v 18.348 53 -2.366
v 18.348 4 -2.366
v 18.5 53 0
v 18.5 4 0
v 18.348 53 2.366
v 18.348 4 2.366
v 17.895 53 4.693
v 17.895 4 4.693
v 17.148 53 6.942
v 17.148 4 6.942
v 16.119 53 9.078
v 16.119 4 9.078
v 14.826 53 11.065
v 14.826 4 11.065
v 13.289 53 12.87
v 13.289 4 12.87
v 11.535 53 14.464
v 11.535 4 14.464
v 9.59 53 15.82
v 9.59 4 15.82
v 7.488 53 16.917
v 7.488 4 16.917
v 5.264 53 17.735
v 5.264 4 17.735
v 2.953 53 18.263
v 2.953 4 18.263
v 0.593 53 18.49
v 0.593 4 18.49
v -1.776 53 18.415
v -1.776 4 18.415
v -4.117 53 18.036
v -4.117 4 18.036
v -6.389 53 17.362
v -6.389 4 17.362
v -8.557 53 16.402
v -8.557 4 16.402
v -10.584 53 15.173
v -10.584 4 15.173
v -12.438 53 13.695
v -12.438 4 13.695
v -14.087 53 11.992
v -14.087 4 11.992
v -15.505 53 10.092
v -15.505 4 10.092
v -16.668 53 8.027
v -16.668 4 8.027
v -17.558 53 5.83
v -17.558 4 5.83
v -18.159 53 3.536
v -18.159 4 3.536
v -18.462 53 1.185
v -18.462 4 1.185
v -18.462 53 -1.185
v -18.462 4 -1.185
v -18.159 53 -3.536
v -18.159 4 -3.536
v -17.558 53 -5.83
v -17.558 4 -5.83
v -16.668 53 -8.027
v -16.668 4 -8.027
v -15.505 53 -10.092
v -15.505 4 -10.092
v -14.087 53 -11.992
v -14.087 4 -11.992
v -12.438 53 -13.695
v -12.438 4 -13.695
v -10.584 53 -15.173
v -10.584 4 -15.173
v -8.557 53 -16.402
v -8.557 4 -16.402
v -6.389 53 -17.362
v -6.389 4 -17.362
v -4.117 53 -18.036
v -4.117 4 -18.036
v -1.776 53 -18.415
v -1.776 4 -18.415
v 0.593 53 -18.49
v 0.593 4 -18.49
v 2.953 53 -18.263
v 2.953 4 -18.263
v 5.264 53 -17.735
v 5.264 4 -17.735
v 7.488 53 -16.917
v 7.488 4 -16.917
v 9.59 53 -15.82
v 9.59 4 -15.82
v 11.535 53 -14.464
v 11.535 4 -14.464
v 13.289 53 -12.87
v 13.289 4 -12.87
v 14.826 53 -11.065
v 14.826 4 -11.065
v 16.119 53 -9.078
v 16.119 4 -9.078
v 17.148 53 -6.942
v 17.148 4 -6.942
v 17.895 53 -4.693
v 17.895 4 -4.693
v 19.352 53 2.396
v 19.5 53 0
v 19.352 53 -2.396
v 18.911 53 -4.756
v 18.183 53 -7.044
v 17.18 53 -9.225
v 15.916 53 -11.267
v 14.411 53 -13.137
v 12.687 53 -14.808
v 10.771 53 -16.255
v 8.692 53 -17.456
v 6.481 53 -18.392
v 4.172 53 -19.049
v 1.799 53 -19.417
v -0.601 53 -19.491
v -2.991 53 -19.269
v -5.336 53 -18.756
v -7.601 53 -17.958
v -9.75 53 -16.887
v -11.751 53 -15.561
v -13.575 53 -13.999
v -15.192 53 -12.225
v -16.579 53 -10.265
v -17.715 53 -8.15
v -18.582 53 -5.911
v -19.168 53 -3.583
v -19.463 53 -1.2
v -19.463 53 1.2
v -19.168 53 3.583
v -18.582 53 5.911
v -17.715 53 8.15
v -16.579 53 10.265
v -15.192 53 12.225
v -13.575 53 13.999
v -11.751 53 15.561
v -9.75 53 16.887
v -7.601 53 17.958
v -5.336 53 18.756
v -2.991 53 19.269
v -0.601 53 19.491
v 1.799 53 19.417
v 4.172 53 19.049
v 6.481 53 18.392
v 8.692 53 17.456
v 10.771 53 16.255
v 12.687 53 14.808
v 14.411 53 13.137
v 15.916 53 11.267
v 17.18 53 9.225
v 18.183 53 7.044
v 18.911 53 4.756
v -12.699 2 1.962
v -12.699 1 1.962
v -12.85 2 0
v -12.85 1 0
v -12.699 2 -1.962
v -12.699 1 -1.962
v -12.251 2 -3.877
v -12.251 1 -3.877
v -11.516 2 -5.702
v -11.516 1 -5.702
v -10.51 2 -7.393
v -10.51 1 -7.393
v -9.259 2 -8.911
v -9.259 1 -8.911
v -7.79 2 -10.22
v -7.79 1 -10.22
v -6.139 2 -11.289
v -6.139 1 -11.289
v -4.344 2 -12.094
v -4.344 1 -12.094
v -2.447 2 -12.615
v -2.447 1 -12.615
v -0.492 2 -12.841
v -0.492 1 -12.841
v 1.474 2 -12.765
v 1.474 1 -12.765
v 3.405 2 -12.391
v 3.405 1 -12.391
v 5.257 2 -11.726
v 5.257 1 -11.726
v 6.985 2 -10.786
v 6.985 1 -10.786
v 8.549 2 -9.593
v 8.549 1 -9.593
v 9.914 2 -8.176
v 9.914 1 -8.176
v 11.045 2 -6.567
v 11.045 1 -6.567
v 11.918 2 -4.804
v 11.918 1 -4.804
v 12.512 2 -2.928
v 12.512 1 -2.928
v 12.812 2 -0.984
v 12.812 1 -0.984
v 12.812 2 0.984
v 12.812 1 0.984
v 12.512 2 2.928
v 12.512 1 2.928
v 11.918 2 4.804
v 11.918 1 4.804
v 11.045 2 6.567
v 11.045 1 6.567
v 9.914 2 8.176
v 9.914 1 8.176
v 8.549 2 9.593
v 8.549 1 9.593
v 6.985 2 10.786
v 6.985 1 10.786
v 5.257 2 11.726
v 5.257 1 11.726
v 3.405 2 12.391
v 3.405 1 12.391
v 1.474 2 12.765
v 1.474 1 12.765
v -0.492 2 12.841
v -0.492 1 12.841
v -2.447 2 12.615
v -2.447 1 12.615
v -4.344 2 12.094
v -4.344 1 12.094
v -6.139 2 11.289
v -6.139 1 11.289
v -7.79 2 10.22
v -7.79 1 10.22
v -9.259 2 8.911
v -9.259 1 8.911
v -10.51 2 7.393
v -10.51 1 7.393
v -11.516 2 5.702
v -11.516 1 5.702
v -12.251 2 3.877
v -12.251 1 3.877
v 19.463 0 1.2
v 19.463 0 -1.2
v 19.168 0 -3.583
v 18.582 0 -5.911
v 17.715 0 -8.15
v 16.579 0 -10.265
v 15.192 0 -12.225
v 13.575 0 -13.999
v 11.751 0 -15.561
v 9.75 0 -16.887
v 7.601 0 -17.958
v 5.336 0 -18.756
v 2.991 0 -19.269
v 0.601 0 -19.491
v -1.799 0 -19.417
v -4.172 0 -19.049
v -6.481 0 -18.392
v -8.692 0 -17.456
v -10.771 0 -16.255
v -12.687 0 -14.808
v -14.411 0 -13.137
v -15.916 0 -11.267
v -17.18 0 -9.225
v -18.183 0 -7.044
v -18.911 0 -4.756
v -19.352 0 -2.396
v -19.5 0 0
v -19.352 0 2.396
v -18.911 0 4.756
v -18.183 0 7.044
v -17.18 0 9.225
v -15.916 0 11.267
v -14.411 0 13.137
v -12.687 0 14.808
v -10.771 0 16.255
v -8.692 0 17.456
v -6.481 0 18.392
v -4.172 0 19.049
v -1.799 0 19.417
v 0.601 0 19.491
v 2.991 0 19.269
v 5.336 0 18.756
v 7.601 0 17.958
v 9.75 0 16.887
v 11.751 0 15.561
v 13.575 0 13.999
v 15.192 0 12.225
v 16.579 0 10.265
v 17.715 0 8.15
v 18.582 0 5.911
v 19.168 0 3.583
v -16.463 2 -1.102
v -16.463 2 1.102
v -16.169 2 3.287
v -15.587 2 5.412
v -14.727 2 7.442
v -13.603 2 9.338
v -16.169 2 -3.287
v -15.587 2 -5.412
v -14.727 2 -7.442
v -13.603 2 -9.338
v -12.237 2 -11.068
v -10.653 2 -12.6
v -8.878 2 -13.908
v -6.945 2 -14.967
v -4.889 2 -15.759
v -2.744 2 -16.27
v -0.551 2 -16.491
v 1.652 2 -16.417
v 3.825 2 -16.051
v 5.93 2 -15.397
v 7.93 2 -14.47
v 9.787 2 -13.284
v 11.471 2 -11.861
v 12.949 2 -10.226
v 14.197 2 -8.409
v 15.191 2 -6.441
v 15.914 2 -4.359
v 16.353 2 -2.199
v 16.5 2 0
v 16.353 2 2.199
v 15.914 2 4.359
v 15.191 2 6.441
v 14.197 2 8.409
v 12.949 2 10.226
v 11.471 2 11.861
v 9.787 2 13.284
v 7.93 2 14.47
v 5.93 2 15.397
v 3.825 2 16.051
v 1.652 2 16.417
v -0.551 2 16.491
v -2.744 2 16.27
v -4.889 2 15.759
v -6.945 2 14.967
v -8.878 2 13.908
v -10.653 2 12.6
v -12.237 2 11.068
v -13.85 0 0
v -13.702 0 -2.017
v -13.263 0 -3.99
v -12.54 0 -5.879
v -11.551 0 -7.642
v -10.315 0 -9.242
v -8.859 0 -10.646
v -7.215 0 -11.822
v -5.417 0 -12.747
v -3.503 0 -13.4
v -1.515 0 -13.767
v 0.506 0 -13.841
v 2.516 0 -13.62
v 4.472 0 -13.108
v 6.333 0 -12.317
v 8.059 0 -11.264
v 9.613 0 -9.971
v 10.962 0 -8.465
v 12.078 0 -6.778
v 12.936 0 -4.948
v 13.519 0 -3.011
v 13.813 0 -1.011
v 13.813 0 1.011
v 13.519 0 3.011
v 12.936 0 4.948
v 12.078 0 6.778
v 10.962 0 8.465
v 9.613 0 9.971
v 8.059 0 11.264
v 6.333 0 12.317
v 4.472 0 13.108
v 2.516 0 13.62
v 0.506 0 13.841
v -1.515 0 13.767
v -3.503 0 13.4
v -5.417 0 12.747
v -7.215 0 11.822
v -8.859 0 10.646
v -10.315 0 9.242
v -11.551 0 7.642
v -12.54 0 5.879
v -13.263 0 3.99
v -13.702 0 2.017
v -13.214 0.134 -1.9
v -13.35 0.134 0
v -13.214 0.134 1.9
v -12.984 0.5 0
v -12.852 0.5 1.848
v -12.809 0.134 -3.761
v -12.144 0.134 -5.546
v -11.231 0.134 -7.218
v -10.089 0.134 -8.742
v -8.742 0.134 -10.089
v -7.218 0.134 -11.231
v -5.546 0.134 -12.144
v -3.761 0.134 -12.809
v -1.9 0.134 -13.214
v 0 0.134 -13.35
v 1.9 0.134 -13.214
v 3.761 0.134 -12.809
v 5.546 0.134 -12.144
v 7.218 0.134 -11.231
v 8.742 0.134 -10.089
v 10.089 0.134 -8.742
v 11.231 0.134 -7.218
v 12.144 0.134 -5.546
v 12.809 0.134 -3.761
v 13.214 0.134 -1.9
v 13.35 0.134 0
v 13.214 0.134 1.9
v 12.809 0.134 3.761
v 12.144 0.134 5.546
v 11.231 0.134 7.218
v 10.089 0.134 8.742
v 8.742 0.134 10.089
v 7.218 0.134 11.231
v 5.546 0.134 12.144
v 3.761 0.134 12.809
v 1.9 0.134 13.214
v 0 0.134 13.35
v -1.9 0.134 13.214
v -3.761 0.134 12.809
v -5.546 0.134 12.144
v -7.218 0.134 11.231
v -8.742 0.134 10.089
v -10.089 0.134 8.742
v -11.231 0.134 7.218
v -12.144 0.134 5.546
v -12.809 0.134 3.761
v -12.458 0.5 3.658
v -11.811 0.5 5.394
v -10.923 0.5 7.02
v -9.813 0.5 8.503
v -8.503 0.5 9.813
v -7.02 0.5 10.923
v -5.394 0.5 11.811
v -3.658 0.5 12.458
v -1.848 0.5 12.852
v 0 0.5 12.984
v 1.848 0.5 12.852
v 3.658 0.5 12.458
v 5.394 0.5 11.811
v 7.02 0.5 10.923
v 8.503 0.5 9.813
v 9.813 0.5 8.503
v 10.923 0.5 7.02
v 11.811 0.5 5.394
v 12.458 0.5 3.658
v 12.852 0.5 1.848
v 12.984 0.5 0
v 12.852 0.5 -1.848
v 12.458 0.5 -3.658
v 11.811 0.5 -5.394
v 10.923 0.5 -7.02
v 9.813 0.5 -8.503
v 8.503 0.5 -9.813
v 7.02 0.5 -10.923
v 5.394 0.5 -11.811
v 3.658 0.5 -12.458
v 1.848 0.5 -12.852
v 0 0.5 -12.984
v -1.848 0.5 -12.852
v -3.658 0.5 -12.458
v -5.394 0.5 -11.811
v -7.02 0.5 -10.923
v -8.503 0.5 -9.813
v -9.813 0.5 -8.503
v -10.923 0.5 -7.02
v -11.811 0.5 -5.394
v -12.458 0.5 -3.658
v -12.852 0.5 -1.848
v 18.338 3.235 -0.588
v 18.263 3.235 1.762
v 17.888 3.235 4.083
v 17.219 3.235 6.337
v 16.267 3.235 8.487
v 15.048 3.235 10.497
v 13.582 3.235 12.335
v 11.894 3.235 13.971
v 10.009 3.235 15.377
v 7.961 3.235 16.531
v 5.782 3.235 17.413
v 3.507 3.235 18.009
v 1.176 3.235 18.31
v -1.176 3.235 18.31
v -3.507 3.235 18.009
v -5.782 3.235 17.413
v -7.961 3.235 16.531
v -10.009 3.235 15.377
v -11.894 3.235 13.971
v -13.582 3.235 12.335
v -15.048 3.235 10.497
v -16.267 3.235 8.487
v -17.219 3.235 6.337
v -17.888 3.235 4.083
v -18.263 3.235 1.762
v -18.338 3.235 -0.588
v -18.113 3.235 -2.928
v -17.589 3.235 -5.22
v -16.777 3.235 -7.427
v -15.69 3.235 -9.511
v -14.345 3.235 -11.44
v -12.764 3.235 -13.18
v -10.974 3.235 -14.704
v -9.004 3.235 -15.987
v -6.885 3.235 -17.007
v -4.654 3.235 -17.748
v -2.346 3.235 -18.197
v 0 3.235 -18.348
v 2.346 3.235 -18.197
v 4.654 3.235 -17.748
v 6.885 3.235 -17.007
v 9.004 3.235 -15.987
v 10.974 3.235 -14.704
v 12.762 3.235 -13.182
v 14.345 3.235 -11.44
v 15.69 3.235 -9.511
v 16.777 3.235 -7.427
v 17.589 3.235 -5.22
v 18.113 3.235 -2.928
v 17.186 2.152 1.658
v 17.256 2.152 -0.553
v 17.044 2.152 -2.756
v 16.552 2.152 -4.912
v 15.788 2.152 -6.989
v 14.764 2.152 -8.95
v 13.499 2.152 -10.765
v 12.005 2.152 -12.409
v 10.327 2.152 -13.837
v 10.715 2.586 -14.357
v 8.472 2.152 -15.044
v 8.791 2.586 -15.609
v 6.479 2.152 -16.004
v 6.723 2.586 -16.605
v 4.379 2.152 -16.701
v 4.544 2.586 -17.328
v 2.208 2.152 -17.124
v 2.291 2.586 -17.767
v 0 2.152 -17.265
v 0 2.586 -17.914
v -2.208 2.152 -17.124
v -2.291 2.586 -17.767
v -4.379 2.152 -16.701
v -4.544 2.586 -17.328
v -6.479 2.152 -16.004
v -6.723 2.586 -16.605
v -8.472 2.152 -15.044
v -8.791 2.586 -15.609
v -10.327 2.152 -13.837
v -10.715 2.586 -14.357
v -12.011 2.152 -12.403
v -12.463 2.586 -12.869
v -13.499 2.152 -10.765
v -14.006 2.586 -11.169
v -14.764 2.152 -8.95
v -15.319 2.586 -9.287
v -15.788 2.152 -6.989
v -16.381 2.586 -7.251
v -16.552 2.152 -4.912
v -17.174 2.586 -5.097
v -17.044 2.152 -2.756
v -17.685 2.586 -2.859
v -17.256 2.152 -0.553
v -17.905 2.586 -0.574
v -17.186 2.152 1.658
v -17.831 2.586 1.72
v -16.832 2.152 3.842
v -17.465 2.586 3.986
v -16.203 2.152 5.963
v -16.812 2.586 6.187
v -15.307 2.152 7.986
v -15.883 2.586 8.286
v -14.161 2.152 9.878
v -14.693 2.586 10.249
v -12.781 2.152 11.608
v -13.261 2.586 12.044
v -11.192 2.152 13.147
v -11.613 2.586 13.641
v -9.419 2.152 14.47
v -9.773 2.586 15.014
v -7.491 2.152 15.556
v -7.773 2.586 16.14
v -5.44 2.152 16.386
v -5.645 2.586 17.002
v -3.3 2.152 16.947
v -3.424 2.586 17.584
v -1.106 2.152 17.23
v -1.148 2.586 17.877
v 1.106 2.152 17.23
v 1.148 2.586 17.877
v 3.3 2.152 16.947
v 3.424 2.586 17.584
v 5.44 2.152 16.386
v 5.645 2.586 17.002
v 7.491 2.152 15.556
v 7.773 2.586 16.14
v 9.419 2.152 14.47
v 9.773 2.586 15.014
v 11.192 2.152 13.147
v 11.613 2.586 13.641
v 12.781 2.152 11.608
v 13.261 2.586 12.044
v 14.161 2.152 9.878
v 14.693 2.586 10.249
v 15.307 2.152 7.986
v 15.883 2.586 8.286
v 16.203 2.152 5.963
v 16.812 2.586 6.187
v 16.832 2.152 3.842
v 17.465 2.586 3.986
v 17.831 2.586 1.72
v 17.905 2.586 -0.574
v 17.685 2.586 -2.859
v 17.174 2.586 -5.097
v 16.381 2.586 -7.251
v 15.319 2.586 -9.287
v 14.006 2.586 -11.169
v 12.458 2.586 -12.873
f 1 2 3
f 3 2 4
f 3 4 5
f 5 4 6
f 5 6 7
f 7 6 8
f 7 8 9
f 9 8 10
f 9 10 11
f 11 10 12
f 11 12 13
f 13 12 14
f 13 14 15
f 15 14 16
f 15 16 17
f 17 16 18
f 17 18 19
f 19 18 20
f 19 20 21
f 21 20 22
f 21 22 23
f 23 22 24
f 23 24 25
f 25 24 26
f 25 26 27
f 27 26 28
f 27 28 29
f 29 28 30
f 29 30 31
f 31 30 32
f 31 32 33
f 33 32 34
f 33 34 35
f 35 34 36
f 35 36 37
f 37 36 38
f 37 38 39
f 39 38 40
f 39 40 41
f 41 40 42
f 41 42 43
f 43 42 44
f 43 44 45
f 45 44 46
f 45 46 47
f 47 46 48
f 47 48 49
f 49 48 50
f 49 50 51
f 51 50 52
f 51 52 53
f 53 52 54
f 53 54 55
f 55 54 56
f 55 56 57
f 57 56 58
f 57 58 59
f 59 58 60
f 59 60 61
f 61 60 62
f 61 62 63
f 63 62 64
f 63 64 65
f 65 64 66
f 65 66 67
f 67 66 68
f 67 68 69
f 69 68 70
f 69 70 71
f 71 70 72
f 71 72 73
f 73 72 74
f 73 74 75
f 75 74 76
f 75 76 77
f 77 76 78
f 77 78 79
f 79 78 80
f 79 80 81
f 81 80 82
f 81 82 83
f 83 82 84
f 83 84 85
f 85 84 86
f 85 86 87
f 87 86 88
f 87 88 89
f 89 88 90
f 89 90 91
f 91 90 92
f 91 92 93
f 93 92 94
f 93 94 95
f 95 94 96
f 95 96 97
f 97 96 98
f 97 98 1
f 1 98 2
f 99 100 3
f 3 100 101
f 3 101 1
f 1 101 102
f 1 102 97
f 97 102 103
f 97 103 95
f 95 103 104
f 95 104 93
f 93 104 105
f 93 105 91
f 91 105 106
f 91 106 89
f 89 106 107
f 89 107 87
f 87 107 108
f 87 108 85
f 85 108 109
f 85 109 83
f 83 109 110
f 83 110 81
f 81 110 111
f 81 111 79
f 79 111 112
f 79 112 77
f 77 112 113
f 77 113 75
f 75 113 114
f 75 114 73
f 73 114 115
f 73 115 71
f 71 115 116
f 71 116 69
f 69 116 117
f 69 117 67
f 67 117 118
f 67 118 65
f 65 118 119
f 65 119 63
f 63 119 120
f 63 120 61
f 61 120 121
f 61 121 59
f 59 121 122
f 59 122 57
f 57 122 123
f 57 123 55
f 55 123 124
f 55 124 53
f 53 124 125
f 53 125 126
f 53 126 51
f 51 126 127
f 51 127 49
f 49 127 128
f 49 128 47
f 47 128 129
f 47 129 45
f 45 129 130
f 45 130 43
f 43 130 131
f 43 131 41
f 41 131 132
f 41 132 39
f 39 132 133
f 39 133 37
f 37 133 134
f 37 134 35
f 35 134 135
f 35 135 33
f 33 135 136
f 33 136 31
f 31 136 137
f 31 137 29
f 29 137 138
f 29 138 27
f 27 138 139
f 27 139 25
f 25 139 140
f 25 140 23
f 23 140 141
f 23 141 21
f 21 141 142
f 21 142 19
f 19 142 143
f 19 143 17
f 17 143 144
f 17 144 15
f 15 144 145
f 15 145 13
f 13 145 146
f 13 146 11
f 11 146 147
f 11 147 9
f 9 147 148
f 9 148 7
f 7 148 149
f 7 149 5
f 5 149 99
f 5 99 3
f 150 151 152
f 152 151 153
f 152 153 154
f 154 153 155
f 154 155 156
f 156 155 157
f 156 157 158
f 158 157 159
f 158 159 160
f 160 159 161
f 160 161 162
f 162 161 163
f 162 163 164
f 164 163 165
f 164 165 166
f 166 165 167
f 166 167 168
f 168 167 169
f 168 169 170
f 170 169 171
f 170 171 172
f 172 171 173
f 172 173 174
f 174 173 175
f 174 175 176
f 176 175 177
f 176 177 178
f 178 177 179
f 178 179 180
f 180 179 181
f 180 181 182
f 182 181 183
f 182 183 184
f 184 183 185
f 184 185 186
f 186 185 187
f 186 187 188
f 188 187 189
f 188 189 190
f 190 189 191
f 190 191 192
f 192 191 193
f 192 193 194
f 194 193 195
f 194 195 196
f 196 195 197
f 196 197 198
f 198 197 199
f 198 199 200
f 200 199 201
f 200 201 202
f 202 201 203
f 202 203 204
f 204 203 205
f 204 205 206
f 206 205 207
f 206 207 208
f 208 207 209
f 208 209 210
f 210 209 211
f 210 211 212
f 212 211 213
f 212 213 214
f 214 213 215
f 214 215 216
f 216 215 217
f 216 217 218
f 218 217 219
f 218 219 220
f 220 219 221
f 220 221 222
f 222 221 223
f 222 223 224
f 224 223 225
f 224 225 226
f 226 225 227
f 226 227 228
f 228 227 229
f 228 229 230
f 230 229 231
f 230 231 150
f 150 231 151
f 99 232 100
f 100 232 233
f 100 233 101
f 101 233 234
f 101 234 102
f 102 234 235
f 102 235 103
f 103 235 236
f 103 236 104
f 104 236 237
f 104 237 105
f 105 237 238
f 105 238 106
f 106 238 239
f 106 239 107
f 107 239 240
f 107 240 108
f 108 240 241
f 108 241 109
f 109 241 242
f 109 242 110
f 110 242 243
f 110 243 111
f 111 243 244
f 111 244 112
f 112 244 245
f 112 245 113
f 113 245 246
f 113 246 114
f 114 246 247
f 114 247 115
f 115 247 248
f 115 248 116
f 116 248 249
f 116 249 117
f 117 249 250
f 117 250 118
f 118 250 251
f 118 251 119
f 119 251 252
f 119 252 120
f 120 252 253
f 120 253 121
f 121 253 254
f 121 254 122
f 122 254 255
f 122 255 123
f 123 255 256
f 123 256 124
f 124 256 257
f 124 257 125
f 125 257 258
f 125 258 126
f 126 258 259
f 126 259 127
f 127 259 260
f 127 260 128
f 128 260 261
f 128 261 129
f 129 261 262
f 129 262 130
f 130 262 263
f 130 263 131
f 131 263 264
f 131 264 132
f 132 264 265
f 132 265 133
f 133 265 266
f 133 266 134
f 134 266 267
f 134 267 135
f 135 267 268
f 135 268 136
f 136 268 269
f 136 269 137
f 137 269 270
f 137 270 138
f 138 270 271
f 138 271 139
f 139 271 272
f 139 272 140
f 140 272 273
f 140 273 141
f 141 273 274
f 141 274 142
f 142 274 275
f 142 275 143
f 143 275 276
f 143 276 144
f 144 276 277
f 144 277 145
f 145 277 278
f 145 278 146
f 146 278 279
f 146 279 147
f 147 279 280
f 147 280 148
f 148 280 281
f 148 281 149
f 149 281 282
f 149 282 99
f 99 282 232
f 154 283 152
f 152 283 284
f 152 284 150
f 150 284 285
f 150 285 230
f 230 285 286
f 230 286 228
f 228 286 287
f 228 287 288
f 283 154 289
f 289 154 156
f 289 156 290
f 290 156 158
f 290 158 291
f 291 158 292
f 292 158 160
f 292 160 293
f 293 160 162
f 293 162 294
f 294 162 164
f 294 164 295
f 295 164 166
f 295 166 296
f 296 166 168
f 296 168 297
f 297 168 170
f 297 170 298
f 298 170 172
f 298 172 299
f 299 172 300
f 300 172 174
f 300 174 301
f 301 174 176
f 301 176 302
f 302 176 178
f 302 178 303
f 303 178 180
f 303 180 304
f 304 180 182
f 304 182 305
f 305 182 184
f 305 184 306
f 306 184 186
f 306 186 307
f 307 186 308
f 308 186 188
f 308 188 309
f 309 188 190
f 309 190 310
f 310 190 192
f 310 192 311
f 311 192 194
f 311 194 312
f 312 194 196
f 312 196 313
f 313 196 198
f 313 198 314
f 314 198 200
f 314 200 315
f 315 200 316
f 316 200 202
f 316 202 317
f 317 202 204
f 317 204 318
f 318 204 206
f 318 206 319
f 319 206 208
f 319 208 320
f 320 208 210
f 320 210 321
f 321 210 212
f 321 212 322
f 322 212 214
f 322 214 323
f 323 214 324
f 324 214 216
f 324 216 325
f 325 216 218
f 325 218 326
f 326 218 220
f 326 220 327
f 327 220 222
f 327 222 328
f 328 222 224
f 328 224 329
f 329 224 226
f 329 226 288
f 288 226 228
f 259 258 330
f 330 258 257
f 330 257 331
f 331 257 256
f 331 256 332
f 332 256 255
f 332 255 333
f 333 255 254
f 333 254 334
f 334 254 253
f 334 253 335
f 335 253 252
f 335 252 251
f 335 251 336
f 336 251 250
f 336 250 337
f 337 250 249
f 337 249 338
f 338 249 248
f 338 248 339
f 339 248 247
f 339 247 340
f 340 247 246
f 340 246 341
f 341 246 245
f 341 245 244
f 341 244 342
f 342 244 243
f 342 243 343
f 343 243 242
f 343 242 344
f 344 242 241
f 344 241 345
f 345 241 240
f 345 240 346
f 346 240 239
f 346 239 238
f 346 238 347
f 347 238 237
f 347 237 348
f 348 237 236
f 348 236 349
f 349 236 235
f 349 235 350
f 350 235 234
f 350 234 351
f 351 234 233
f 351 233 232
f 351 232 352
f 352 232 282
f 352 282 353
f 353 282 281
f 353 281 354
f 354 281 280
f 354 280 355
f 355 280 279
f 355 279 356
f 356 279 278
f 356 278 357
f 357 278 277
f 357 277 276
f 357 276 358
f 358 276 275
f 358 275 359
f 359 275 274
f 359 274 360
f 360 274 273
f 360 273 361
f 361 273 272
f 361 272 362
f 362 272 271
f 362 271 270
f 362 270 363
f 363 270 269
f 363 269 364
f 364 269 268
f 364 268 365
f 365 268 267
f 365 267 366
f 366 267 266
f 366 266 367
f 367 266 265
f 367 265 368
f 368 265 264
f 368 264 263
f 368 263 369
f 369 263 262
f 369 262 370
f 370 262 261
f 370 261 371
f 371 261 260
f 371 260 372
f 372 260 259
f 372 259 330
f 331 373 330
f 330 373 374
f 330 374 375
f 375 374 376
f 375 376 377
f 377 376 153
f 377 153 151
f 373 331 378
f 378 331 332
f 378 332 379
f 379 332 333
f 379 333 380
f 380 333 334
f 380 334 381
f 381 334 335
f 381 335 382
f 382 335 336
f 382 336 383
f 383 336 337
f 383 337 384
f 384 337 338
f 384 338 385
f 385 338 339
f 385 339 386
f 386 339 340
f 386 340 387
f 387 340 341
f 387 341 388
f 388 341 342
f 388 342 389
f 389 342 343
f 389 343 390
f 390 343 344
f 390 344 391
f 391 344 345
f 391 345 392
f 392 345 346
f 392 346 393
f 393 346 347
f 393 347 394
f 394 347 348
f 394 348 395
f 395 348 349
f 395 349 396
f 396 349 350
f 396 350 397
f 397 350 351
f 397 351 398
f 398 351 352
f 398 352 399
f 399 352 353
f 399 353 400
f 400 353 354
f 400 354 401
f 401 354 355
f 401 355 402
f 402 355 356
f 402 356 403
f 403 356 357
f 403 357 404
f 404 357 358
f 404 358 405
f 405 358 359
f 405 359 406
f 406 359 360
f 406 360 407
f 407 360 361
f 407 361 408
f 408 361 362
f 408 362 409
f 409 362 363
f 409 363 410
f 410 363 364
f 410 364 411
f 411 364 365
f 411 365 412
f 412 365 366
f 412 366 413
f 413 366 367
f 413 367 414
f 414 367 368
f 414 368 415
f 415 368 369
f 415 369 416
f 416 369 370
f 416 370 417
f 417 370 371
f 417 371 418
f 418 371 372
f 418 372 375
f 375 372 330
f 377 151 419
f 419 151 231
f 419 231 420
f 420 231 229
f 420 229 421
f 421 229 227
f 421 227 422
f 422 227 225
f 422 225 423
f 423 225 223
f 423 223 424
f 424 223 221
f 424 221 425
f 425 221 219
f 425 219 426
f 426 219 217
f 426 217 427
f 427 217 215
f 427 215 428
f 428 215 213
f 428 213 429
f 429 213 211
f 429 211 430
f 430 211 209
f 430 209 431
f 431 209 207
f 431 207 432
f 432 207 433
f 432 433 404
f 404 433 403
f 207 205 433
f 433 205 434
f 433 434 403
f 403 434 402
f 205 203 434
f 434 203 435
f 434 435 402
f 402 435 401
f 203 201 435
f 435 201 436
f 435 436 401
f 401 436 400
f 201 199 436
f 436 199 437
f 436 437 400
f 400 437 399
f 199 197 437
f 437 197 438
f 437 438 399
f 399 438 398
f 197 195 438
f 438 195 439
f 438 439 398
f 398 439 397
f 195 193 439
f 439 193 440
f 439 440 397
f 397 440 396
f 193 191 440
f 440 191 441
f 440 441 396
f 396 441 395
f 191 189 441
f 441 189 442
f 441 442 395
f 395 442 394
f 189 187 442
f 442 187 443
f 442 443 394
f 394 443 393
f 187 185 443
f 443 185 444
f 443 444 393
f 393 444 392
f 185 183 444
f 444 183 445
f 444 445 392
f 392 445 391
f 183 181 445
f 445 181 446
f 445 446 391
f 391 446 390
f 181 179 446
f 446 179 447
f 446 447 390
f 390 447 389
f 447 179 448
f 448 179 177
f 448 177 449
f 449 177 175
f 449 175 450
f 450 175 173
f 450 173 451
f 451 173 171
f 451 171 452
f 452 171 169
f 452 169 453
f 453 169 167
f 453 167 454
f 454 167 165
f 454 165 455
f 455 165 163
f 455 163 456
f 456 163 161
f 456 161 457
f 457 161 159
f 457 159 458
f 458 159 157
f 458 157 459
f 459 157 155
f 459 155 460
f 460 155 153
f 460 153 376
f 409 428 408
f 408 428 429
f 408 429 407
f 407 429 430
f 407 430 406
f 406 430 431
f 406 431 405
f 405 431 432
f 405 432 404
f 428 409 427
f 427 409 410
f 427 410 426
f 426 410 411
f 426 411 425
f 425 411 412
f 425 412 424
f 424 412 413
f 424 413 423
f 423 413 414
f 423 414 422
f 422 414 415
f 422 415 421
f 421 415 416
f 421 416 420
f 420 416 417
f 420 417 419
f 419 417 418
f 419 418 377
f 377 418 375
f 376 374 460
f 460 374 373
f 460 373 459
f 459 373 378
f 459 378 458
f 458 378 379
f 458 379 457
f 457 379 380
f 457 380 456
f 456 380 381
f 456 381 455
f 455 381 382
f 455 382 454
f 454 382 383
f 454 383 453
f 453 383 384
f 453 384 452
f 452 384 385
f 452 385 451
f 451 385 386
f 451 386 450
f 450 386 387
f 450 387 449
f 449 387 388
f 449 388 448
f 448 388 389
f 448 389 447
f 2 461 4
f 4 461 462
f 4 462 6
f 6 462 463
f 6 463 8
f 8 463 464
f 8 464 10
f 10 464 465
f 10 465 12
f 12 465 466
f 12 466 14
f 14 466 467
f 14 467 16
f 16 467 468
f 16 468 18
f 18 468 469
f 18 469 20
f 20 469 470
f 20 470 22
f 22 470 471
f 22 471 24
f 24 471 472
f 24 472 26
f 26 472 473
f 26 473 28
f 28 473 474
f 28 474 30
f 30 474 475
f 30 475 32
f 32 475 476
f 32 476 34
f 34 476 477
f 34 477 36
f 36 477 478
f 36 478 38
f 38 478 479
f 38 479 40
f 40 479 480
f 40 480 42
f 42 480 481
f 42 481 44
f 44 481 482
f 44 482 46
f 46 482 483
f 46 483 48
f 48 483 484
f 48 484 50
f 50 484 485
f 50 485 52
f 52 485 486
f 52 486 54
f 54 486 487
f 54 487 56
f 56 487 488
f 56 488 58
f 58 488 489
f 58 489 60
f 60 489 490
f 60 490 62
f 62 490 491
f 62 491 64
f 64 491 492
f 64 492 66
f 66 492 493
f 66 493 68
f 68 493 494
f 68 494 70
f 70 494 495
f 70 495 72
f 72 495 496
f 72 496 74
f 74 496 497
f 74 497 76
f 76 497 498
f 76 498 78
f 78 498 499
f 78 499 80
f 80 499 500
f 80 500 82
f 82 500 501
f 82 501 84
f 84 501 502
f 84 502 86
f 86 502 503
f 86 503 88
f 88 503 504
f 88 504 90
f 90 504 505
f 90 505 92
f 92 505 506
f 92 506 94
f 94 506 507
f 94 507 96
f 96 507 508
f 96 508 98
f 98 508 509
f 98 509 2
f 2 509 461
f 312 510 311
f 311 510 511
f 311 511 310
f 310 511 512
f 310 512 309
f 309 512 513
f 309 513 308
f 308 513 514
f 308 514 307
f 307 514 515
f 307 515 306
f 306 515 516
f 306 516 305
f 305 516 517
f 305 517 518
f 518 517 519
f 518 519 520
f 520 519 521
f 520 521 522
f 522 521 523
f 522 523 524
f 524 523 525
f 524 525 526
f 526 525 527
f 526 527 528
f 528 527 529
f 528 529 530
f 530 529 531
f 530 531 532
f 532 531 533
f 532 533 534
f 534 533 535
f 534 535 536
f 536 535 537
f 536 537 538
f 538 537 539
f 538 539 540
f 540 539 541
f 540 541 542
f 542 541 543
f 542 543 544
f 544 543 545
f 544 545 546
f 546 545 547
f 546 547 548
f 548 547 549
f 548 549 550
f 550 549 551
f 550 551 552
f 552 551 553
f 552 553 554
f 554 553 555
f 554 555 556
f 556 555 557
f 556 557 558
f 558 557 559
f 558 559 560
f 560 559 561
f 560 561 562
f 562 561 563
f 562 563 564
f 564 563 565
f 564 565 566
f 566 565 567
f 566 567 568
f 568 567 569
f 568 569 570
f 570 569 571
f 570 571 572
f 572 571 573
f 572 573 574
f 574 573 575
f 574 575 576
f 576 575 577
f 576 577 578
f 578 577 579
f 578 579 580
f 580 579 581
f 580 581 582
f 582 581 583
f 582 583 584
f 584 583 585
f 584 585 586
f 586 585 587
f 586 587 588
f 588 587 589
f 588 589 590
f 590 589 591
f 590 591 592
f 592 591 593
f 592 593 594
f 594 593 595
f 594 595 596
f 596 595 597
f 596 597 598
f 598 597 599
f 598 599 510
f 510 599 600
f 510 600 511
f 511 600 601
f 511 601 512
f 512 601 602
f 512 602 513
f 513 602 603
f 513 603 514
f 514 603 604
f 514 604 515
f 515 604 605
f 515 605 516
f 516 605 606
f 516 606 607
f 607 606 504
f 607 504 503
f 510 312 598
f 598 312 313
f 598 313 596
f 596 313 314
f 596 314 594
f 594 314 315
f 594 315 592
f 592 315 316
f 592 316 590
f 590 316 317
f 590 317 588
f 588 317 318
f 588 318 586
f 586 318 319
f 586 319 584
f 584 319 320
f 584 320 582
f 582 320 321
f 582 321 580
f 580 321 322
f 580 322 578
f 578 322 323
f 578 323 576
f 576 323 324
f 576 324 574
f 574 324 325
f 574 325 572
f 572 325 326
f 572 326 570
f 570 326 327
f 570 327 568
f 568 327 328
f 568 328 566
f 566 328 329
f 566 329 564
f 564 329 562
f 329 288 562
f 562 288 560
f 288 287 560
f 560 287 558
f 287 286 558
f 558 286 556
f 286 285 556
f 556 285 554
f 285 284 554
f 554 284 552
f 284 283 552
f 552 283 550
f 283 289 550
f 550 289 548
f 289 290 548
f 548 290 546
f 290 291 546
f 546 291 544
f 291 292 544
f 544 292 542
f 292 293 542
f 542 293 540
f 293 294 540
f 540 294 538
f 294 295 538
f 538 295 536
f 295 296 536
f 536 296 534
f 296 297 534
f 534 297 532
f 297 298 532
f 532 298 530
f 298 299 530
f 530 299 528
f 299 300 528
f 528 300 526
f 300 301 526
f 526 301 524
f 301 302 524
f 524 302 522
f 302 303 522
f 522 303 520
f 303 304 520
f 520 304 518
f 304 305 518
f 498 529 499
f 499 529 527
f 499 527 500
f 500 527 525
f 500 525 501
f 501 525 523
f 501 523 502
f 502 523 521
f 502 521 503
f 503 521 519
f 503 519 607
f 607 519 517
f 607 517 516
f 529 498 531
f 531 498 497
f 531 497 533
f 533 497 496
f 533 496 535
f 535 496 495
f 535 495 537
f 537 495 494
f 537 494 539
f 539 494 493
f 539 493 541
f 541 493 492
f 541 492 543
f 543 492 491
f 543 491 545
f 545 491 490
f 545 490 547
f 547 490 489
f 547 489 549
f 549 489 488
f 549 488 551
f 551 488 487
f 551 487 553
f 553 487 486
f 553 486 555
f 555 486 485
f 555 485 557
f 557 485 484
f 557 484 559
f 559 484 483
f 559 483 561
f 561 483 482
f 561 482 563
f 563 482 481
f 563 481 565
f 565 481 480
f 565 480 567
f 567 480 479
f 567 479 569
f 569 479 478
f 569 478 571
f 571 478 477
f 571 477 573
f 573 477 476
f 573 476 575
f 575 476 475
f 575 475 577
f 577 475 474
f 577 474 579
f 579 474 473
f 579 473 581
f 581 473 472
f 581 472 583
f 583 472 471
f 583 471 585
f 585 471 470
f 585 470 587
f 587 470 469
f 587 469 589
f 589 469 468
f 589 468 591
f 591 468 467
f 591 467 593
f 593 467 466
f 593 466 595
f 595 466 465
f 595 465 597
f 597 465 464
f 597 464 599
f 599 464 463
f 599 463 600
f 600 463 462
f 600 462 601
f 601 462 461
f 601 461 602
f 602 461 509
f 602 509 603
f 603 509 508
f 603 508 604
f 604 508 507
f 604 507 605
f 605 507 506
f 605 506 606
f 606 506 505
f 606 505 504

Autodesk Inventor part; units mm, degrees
ref_plane "YZ Plane" through (0, 0, 0) normal (1, 0, 0) x (0, 1, 0)
ref_plane "XZ Plane" through (0, 0, 0) normal (0, 1, 0) x (-1, 0, 0)
ref_plane "Work Plane1" through (-16.584, 2, -16.584) normal (0, 1, 0) x (0.3814, 0, 0.9244)
sketch "Sketch1" plane through (0, 0, 0) normal (0, 1, 0) x (-1, 0, 0)
  circle A0 centre (0, 0) radius 22.5
  circle A1 centre (0, 0) radius 19.5
  circle A2 centre (0, 0) radius 12.7 projected
  circle A3 centre (0, 0) radius 6 projected
  circle A4 centre (8.8049, 3.6331) radius 1.63 projected
  circle A5 centre (7.5488, -5.8087) radius 1.63 projected
  circle A6 centre (-1.2561, -9.4418) radius 1.63 projected
  circle A7 centre (-8.8049, -3.6331) radius 1.63 projected
  circle A8 centre (-7.5488, 5.8087) radius 1.63 projected
  circle A9 centre (1.2561, 9.4418) radius 1.63 projected
  circle A10 centre (0, 0) radius 12.85
  dimension "d0" = 45
  dimension "d1" = 3
  dimension "d4" = 0.15
extrude "Extrusion1" add sketch "Sketch1" along normal blind 2 contours A1
sketch "Sketch4" plane through (0, 2, 0) normal (0, 1, 0) x (1, 0, 0)
  circle A0 centre (0, 0) radius 22.5
  circle A1 centre (0, 0) radius 19.5
  circle A2 centre (0, 0) radius 18.5
  dimension "d13" = 45
  dimension "d14" = 3
  dimension "d15" = 1
extrude "Extrusion4" add sketch "Sketch4" along normal blind 51 contours A1
fillet "Fillet2" radius 1 1 edges at (12.85, 0, 0)
fillet "Fillet3" radius 2 1 edges at (-18.5, 2, 0)
properties part number "tulejka"
